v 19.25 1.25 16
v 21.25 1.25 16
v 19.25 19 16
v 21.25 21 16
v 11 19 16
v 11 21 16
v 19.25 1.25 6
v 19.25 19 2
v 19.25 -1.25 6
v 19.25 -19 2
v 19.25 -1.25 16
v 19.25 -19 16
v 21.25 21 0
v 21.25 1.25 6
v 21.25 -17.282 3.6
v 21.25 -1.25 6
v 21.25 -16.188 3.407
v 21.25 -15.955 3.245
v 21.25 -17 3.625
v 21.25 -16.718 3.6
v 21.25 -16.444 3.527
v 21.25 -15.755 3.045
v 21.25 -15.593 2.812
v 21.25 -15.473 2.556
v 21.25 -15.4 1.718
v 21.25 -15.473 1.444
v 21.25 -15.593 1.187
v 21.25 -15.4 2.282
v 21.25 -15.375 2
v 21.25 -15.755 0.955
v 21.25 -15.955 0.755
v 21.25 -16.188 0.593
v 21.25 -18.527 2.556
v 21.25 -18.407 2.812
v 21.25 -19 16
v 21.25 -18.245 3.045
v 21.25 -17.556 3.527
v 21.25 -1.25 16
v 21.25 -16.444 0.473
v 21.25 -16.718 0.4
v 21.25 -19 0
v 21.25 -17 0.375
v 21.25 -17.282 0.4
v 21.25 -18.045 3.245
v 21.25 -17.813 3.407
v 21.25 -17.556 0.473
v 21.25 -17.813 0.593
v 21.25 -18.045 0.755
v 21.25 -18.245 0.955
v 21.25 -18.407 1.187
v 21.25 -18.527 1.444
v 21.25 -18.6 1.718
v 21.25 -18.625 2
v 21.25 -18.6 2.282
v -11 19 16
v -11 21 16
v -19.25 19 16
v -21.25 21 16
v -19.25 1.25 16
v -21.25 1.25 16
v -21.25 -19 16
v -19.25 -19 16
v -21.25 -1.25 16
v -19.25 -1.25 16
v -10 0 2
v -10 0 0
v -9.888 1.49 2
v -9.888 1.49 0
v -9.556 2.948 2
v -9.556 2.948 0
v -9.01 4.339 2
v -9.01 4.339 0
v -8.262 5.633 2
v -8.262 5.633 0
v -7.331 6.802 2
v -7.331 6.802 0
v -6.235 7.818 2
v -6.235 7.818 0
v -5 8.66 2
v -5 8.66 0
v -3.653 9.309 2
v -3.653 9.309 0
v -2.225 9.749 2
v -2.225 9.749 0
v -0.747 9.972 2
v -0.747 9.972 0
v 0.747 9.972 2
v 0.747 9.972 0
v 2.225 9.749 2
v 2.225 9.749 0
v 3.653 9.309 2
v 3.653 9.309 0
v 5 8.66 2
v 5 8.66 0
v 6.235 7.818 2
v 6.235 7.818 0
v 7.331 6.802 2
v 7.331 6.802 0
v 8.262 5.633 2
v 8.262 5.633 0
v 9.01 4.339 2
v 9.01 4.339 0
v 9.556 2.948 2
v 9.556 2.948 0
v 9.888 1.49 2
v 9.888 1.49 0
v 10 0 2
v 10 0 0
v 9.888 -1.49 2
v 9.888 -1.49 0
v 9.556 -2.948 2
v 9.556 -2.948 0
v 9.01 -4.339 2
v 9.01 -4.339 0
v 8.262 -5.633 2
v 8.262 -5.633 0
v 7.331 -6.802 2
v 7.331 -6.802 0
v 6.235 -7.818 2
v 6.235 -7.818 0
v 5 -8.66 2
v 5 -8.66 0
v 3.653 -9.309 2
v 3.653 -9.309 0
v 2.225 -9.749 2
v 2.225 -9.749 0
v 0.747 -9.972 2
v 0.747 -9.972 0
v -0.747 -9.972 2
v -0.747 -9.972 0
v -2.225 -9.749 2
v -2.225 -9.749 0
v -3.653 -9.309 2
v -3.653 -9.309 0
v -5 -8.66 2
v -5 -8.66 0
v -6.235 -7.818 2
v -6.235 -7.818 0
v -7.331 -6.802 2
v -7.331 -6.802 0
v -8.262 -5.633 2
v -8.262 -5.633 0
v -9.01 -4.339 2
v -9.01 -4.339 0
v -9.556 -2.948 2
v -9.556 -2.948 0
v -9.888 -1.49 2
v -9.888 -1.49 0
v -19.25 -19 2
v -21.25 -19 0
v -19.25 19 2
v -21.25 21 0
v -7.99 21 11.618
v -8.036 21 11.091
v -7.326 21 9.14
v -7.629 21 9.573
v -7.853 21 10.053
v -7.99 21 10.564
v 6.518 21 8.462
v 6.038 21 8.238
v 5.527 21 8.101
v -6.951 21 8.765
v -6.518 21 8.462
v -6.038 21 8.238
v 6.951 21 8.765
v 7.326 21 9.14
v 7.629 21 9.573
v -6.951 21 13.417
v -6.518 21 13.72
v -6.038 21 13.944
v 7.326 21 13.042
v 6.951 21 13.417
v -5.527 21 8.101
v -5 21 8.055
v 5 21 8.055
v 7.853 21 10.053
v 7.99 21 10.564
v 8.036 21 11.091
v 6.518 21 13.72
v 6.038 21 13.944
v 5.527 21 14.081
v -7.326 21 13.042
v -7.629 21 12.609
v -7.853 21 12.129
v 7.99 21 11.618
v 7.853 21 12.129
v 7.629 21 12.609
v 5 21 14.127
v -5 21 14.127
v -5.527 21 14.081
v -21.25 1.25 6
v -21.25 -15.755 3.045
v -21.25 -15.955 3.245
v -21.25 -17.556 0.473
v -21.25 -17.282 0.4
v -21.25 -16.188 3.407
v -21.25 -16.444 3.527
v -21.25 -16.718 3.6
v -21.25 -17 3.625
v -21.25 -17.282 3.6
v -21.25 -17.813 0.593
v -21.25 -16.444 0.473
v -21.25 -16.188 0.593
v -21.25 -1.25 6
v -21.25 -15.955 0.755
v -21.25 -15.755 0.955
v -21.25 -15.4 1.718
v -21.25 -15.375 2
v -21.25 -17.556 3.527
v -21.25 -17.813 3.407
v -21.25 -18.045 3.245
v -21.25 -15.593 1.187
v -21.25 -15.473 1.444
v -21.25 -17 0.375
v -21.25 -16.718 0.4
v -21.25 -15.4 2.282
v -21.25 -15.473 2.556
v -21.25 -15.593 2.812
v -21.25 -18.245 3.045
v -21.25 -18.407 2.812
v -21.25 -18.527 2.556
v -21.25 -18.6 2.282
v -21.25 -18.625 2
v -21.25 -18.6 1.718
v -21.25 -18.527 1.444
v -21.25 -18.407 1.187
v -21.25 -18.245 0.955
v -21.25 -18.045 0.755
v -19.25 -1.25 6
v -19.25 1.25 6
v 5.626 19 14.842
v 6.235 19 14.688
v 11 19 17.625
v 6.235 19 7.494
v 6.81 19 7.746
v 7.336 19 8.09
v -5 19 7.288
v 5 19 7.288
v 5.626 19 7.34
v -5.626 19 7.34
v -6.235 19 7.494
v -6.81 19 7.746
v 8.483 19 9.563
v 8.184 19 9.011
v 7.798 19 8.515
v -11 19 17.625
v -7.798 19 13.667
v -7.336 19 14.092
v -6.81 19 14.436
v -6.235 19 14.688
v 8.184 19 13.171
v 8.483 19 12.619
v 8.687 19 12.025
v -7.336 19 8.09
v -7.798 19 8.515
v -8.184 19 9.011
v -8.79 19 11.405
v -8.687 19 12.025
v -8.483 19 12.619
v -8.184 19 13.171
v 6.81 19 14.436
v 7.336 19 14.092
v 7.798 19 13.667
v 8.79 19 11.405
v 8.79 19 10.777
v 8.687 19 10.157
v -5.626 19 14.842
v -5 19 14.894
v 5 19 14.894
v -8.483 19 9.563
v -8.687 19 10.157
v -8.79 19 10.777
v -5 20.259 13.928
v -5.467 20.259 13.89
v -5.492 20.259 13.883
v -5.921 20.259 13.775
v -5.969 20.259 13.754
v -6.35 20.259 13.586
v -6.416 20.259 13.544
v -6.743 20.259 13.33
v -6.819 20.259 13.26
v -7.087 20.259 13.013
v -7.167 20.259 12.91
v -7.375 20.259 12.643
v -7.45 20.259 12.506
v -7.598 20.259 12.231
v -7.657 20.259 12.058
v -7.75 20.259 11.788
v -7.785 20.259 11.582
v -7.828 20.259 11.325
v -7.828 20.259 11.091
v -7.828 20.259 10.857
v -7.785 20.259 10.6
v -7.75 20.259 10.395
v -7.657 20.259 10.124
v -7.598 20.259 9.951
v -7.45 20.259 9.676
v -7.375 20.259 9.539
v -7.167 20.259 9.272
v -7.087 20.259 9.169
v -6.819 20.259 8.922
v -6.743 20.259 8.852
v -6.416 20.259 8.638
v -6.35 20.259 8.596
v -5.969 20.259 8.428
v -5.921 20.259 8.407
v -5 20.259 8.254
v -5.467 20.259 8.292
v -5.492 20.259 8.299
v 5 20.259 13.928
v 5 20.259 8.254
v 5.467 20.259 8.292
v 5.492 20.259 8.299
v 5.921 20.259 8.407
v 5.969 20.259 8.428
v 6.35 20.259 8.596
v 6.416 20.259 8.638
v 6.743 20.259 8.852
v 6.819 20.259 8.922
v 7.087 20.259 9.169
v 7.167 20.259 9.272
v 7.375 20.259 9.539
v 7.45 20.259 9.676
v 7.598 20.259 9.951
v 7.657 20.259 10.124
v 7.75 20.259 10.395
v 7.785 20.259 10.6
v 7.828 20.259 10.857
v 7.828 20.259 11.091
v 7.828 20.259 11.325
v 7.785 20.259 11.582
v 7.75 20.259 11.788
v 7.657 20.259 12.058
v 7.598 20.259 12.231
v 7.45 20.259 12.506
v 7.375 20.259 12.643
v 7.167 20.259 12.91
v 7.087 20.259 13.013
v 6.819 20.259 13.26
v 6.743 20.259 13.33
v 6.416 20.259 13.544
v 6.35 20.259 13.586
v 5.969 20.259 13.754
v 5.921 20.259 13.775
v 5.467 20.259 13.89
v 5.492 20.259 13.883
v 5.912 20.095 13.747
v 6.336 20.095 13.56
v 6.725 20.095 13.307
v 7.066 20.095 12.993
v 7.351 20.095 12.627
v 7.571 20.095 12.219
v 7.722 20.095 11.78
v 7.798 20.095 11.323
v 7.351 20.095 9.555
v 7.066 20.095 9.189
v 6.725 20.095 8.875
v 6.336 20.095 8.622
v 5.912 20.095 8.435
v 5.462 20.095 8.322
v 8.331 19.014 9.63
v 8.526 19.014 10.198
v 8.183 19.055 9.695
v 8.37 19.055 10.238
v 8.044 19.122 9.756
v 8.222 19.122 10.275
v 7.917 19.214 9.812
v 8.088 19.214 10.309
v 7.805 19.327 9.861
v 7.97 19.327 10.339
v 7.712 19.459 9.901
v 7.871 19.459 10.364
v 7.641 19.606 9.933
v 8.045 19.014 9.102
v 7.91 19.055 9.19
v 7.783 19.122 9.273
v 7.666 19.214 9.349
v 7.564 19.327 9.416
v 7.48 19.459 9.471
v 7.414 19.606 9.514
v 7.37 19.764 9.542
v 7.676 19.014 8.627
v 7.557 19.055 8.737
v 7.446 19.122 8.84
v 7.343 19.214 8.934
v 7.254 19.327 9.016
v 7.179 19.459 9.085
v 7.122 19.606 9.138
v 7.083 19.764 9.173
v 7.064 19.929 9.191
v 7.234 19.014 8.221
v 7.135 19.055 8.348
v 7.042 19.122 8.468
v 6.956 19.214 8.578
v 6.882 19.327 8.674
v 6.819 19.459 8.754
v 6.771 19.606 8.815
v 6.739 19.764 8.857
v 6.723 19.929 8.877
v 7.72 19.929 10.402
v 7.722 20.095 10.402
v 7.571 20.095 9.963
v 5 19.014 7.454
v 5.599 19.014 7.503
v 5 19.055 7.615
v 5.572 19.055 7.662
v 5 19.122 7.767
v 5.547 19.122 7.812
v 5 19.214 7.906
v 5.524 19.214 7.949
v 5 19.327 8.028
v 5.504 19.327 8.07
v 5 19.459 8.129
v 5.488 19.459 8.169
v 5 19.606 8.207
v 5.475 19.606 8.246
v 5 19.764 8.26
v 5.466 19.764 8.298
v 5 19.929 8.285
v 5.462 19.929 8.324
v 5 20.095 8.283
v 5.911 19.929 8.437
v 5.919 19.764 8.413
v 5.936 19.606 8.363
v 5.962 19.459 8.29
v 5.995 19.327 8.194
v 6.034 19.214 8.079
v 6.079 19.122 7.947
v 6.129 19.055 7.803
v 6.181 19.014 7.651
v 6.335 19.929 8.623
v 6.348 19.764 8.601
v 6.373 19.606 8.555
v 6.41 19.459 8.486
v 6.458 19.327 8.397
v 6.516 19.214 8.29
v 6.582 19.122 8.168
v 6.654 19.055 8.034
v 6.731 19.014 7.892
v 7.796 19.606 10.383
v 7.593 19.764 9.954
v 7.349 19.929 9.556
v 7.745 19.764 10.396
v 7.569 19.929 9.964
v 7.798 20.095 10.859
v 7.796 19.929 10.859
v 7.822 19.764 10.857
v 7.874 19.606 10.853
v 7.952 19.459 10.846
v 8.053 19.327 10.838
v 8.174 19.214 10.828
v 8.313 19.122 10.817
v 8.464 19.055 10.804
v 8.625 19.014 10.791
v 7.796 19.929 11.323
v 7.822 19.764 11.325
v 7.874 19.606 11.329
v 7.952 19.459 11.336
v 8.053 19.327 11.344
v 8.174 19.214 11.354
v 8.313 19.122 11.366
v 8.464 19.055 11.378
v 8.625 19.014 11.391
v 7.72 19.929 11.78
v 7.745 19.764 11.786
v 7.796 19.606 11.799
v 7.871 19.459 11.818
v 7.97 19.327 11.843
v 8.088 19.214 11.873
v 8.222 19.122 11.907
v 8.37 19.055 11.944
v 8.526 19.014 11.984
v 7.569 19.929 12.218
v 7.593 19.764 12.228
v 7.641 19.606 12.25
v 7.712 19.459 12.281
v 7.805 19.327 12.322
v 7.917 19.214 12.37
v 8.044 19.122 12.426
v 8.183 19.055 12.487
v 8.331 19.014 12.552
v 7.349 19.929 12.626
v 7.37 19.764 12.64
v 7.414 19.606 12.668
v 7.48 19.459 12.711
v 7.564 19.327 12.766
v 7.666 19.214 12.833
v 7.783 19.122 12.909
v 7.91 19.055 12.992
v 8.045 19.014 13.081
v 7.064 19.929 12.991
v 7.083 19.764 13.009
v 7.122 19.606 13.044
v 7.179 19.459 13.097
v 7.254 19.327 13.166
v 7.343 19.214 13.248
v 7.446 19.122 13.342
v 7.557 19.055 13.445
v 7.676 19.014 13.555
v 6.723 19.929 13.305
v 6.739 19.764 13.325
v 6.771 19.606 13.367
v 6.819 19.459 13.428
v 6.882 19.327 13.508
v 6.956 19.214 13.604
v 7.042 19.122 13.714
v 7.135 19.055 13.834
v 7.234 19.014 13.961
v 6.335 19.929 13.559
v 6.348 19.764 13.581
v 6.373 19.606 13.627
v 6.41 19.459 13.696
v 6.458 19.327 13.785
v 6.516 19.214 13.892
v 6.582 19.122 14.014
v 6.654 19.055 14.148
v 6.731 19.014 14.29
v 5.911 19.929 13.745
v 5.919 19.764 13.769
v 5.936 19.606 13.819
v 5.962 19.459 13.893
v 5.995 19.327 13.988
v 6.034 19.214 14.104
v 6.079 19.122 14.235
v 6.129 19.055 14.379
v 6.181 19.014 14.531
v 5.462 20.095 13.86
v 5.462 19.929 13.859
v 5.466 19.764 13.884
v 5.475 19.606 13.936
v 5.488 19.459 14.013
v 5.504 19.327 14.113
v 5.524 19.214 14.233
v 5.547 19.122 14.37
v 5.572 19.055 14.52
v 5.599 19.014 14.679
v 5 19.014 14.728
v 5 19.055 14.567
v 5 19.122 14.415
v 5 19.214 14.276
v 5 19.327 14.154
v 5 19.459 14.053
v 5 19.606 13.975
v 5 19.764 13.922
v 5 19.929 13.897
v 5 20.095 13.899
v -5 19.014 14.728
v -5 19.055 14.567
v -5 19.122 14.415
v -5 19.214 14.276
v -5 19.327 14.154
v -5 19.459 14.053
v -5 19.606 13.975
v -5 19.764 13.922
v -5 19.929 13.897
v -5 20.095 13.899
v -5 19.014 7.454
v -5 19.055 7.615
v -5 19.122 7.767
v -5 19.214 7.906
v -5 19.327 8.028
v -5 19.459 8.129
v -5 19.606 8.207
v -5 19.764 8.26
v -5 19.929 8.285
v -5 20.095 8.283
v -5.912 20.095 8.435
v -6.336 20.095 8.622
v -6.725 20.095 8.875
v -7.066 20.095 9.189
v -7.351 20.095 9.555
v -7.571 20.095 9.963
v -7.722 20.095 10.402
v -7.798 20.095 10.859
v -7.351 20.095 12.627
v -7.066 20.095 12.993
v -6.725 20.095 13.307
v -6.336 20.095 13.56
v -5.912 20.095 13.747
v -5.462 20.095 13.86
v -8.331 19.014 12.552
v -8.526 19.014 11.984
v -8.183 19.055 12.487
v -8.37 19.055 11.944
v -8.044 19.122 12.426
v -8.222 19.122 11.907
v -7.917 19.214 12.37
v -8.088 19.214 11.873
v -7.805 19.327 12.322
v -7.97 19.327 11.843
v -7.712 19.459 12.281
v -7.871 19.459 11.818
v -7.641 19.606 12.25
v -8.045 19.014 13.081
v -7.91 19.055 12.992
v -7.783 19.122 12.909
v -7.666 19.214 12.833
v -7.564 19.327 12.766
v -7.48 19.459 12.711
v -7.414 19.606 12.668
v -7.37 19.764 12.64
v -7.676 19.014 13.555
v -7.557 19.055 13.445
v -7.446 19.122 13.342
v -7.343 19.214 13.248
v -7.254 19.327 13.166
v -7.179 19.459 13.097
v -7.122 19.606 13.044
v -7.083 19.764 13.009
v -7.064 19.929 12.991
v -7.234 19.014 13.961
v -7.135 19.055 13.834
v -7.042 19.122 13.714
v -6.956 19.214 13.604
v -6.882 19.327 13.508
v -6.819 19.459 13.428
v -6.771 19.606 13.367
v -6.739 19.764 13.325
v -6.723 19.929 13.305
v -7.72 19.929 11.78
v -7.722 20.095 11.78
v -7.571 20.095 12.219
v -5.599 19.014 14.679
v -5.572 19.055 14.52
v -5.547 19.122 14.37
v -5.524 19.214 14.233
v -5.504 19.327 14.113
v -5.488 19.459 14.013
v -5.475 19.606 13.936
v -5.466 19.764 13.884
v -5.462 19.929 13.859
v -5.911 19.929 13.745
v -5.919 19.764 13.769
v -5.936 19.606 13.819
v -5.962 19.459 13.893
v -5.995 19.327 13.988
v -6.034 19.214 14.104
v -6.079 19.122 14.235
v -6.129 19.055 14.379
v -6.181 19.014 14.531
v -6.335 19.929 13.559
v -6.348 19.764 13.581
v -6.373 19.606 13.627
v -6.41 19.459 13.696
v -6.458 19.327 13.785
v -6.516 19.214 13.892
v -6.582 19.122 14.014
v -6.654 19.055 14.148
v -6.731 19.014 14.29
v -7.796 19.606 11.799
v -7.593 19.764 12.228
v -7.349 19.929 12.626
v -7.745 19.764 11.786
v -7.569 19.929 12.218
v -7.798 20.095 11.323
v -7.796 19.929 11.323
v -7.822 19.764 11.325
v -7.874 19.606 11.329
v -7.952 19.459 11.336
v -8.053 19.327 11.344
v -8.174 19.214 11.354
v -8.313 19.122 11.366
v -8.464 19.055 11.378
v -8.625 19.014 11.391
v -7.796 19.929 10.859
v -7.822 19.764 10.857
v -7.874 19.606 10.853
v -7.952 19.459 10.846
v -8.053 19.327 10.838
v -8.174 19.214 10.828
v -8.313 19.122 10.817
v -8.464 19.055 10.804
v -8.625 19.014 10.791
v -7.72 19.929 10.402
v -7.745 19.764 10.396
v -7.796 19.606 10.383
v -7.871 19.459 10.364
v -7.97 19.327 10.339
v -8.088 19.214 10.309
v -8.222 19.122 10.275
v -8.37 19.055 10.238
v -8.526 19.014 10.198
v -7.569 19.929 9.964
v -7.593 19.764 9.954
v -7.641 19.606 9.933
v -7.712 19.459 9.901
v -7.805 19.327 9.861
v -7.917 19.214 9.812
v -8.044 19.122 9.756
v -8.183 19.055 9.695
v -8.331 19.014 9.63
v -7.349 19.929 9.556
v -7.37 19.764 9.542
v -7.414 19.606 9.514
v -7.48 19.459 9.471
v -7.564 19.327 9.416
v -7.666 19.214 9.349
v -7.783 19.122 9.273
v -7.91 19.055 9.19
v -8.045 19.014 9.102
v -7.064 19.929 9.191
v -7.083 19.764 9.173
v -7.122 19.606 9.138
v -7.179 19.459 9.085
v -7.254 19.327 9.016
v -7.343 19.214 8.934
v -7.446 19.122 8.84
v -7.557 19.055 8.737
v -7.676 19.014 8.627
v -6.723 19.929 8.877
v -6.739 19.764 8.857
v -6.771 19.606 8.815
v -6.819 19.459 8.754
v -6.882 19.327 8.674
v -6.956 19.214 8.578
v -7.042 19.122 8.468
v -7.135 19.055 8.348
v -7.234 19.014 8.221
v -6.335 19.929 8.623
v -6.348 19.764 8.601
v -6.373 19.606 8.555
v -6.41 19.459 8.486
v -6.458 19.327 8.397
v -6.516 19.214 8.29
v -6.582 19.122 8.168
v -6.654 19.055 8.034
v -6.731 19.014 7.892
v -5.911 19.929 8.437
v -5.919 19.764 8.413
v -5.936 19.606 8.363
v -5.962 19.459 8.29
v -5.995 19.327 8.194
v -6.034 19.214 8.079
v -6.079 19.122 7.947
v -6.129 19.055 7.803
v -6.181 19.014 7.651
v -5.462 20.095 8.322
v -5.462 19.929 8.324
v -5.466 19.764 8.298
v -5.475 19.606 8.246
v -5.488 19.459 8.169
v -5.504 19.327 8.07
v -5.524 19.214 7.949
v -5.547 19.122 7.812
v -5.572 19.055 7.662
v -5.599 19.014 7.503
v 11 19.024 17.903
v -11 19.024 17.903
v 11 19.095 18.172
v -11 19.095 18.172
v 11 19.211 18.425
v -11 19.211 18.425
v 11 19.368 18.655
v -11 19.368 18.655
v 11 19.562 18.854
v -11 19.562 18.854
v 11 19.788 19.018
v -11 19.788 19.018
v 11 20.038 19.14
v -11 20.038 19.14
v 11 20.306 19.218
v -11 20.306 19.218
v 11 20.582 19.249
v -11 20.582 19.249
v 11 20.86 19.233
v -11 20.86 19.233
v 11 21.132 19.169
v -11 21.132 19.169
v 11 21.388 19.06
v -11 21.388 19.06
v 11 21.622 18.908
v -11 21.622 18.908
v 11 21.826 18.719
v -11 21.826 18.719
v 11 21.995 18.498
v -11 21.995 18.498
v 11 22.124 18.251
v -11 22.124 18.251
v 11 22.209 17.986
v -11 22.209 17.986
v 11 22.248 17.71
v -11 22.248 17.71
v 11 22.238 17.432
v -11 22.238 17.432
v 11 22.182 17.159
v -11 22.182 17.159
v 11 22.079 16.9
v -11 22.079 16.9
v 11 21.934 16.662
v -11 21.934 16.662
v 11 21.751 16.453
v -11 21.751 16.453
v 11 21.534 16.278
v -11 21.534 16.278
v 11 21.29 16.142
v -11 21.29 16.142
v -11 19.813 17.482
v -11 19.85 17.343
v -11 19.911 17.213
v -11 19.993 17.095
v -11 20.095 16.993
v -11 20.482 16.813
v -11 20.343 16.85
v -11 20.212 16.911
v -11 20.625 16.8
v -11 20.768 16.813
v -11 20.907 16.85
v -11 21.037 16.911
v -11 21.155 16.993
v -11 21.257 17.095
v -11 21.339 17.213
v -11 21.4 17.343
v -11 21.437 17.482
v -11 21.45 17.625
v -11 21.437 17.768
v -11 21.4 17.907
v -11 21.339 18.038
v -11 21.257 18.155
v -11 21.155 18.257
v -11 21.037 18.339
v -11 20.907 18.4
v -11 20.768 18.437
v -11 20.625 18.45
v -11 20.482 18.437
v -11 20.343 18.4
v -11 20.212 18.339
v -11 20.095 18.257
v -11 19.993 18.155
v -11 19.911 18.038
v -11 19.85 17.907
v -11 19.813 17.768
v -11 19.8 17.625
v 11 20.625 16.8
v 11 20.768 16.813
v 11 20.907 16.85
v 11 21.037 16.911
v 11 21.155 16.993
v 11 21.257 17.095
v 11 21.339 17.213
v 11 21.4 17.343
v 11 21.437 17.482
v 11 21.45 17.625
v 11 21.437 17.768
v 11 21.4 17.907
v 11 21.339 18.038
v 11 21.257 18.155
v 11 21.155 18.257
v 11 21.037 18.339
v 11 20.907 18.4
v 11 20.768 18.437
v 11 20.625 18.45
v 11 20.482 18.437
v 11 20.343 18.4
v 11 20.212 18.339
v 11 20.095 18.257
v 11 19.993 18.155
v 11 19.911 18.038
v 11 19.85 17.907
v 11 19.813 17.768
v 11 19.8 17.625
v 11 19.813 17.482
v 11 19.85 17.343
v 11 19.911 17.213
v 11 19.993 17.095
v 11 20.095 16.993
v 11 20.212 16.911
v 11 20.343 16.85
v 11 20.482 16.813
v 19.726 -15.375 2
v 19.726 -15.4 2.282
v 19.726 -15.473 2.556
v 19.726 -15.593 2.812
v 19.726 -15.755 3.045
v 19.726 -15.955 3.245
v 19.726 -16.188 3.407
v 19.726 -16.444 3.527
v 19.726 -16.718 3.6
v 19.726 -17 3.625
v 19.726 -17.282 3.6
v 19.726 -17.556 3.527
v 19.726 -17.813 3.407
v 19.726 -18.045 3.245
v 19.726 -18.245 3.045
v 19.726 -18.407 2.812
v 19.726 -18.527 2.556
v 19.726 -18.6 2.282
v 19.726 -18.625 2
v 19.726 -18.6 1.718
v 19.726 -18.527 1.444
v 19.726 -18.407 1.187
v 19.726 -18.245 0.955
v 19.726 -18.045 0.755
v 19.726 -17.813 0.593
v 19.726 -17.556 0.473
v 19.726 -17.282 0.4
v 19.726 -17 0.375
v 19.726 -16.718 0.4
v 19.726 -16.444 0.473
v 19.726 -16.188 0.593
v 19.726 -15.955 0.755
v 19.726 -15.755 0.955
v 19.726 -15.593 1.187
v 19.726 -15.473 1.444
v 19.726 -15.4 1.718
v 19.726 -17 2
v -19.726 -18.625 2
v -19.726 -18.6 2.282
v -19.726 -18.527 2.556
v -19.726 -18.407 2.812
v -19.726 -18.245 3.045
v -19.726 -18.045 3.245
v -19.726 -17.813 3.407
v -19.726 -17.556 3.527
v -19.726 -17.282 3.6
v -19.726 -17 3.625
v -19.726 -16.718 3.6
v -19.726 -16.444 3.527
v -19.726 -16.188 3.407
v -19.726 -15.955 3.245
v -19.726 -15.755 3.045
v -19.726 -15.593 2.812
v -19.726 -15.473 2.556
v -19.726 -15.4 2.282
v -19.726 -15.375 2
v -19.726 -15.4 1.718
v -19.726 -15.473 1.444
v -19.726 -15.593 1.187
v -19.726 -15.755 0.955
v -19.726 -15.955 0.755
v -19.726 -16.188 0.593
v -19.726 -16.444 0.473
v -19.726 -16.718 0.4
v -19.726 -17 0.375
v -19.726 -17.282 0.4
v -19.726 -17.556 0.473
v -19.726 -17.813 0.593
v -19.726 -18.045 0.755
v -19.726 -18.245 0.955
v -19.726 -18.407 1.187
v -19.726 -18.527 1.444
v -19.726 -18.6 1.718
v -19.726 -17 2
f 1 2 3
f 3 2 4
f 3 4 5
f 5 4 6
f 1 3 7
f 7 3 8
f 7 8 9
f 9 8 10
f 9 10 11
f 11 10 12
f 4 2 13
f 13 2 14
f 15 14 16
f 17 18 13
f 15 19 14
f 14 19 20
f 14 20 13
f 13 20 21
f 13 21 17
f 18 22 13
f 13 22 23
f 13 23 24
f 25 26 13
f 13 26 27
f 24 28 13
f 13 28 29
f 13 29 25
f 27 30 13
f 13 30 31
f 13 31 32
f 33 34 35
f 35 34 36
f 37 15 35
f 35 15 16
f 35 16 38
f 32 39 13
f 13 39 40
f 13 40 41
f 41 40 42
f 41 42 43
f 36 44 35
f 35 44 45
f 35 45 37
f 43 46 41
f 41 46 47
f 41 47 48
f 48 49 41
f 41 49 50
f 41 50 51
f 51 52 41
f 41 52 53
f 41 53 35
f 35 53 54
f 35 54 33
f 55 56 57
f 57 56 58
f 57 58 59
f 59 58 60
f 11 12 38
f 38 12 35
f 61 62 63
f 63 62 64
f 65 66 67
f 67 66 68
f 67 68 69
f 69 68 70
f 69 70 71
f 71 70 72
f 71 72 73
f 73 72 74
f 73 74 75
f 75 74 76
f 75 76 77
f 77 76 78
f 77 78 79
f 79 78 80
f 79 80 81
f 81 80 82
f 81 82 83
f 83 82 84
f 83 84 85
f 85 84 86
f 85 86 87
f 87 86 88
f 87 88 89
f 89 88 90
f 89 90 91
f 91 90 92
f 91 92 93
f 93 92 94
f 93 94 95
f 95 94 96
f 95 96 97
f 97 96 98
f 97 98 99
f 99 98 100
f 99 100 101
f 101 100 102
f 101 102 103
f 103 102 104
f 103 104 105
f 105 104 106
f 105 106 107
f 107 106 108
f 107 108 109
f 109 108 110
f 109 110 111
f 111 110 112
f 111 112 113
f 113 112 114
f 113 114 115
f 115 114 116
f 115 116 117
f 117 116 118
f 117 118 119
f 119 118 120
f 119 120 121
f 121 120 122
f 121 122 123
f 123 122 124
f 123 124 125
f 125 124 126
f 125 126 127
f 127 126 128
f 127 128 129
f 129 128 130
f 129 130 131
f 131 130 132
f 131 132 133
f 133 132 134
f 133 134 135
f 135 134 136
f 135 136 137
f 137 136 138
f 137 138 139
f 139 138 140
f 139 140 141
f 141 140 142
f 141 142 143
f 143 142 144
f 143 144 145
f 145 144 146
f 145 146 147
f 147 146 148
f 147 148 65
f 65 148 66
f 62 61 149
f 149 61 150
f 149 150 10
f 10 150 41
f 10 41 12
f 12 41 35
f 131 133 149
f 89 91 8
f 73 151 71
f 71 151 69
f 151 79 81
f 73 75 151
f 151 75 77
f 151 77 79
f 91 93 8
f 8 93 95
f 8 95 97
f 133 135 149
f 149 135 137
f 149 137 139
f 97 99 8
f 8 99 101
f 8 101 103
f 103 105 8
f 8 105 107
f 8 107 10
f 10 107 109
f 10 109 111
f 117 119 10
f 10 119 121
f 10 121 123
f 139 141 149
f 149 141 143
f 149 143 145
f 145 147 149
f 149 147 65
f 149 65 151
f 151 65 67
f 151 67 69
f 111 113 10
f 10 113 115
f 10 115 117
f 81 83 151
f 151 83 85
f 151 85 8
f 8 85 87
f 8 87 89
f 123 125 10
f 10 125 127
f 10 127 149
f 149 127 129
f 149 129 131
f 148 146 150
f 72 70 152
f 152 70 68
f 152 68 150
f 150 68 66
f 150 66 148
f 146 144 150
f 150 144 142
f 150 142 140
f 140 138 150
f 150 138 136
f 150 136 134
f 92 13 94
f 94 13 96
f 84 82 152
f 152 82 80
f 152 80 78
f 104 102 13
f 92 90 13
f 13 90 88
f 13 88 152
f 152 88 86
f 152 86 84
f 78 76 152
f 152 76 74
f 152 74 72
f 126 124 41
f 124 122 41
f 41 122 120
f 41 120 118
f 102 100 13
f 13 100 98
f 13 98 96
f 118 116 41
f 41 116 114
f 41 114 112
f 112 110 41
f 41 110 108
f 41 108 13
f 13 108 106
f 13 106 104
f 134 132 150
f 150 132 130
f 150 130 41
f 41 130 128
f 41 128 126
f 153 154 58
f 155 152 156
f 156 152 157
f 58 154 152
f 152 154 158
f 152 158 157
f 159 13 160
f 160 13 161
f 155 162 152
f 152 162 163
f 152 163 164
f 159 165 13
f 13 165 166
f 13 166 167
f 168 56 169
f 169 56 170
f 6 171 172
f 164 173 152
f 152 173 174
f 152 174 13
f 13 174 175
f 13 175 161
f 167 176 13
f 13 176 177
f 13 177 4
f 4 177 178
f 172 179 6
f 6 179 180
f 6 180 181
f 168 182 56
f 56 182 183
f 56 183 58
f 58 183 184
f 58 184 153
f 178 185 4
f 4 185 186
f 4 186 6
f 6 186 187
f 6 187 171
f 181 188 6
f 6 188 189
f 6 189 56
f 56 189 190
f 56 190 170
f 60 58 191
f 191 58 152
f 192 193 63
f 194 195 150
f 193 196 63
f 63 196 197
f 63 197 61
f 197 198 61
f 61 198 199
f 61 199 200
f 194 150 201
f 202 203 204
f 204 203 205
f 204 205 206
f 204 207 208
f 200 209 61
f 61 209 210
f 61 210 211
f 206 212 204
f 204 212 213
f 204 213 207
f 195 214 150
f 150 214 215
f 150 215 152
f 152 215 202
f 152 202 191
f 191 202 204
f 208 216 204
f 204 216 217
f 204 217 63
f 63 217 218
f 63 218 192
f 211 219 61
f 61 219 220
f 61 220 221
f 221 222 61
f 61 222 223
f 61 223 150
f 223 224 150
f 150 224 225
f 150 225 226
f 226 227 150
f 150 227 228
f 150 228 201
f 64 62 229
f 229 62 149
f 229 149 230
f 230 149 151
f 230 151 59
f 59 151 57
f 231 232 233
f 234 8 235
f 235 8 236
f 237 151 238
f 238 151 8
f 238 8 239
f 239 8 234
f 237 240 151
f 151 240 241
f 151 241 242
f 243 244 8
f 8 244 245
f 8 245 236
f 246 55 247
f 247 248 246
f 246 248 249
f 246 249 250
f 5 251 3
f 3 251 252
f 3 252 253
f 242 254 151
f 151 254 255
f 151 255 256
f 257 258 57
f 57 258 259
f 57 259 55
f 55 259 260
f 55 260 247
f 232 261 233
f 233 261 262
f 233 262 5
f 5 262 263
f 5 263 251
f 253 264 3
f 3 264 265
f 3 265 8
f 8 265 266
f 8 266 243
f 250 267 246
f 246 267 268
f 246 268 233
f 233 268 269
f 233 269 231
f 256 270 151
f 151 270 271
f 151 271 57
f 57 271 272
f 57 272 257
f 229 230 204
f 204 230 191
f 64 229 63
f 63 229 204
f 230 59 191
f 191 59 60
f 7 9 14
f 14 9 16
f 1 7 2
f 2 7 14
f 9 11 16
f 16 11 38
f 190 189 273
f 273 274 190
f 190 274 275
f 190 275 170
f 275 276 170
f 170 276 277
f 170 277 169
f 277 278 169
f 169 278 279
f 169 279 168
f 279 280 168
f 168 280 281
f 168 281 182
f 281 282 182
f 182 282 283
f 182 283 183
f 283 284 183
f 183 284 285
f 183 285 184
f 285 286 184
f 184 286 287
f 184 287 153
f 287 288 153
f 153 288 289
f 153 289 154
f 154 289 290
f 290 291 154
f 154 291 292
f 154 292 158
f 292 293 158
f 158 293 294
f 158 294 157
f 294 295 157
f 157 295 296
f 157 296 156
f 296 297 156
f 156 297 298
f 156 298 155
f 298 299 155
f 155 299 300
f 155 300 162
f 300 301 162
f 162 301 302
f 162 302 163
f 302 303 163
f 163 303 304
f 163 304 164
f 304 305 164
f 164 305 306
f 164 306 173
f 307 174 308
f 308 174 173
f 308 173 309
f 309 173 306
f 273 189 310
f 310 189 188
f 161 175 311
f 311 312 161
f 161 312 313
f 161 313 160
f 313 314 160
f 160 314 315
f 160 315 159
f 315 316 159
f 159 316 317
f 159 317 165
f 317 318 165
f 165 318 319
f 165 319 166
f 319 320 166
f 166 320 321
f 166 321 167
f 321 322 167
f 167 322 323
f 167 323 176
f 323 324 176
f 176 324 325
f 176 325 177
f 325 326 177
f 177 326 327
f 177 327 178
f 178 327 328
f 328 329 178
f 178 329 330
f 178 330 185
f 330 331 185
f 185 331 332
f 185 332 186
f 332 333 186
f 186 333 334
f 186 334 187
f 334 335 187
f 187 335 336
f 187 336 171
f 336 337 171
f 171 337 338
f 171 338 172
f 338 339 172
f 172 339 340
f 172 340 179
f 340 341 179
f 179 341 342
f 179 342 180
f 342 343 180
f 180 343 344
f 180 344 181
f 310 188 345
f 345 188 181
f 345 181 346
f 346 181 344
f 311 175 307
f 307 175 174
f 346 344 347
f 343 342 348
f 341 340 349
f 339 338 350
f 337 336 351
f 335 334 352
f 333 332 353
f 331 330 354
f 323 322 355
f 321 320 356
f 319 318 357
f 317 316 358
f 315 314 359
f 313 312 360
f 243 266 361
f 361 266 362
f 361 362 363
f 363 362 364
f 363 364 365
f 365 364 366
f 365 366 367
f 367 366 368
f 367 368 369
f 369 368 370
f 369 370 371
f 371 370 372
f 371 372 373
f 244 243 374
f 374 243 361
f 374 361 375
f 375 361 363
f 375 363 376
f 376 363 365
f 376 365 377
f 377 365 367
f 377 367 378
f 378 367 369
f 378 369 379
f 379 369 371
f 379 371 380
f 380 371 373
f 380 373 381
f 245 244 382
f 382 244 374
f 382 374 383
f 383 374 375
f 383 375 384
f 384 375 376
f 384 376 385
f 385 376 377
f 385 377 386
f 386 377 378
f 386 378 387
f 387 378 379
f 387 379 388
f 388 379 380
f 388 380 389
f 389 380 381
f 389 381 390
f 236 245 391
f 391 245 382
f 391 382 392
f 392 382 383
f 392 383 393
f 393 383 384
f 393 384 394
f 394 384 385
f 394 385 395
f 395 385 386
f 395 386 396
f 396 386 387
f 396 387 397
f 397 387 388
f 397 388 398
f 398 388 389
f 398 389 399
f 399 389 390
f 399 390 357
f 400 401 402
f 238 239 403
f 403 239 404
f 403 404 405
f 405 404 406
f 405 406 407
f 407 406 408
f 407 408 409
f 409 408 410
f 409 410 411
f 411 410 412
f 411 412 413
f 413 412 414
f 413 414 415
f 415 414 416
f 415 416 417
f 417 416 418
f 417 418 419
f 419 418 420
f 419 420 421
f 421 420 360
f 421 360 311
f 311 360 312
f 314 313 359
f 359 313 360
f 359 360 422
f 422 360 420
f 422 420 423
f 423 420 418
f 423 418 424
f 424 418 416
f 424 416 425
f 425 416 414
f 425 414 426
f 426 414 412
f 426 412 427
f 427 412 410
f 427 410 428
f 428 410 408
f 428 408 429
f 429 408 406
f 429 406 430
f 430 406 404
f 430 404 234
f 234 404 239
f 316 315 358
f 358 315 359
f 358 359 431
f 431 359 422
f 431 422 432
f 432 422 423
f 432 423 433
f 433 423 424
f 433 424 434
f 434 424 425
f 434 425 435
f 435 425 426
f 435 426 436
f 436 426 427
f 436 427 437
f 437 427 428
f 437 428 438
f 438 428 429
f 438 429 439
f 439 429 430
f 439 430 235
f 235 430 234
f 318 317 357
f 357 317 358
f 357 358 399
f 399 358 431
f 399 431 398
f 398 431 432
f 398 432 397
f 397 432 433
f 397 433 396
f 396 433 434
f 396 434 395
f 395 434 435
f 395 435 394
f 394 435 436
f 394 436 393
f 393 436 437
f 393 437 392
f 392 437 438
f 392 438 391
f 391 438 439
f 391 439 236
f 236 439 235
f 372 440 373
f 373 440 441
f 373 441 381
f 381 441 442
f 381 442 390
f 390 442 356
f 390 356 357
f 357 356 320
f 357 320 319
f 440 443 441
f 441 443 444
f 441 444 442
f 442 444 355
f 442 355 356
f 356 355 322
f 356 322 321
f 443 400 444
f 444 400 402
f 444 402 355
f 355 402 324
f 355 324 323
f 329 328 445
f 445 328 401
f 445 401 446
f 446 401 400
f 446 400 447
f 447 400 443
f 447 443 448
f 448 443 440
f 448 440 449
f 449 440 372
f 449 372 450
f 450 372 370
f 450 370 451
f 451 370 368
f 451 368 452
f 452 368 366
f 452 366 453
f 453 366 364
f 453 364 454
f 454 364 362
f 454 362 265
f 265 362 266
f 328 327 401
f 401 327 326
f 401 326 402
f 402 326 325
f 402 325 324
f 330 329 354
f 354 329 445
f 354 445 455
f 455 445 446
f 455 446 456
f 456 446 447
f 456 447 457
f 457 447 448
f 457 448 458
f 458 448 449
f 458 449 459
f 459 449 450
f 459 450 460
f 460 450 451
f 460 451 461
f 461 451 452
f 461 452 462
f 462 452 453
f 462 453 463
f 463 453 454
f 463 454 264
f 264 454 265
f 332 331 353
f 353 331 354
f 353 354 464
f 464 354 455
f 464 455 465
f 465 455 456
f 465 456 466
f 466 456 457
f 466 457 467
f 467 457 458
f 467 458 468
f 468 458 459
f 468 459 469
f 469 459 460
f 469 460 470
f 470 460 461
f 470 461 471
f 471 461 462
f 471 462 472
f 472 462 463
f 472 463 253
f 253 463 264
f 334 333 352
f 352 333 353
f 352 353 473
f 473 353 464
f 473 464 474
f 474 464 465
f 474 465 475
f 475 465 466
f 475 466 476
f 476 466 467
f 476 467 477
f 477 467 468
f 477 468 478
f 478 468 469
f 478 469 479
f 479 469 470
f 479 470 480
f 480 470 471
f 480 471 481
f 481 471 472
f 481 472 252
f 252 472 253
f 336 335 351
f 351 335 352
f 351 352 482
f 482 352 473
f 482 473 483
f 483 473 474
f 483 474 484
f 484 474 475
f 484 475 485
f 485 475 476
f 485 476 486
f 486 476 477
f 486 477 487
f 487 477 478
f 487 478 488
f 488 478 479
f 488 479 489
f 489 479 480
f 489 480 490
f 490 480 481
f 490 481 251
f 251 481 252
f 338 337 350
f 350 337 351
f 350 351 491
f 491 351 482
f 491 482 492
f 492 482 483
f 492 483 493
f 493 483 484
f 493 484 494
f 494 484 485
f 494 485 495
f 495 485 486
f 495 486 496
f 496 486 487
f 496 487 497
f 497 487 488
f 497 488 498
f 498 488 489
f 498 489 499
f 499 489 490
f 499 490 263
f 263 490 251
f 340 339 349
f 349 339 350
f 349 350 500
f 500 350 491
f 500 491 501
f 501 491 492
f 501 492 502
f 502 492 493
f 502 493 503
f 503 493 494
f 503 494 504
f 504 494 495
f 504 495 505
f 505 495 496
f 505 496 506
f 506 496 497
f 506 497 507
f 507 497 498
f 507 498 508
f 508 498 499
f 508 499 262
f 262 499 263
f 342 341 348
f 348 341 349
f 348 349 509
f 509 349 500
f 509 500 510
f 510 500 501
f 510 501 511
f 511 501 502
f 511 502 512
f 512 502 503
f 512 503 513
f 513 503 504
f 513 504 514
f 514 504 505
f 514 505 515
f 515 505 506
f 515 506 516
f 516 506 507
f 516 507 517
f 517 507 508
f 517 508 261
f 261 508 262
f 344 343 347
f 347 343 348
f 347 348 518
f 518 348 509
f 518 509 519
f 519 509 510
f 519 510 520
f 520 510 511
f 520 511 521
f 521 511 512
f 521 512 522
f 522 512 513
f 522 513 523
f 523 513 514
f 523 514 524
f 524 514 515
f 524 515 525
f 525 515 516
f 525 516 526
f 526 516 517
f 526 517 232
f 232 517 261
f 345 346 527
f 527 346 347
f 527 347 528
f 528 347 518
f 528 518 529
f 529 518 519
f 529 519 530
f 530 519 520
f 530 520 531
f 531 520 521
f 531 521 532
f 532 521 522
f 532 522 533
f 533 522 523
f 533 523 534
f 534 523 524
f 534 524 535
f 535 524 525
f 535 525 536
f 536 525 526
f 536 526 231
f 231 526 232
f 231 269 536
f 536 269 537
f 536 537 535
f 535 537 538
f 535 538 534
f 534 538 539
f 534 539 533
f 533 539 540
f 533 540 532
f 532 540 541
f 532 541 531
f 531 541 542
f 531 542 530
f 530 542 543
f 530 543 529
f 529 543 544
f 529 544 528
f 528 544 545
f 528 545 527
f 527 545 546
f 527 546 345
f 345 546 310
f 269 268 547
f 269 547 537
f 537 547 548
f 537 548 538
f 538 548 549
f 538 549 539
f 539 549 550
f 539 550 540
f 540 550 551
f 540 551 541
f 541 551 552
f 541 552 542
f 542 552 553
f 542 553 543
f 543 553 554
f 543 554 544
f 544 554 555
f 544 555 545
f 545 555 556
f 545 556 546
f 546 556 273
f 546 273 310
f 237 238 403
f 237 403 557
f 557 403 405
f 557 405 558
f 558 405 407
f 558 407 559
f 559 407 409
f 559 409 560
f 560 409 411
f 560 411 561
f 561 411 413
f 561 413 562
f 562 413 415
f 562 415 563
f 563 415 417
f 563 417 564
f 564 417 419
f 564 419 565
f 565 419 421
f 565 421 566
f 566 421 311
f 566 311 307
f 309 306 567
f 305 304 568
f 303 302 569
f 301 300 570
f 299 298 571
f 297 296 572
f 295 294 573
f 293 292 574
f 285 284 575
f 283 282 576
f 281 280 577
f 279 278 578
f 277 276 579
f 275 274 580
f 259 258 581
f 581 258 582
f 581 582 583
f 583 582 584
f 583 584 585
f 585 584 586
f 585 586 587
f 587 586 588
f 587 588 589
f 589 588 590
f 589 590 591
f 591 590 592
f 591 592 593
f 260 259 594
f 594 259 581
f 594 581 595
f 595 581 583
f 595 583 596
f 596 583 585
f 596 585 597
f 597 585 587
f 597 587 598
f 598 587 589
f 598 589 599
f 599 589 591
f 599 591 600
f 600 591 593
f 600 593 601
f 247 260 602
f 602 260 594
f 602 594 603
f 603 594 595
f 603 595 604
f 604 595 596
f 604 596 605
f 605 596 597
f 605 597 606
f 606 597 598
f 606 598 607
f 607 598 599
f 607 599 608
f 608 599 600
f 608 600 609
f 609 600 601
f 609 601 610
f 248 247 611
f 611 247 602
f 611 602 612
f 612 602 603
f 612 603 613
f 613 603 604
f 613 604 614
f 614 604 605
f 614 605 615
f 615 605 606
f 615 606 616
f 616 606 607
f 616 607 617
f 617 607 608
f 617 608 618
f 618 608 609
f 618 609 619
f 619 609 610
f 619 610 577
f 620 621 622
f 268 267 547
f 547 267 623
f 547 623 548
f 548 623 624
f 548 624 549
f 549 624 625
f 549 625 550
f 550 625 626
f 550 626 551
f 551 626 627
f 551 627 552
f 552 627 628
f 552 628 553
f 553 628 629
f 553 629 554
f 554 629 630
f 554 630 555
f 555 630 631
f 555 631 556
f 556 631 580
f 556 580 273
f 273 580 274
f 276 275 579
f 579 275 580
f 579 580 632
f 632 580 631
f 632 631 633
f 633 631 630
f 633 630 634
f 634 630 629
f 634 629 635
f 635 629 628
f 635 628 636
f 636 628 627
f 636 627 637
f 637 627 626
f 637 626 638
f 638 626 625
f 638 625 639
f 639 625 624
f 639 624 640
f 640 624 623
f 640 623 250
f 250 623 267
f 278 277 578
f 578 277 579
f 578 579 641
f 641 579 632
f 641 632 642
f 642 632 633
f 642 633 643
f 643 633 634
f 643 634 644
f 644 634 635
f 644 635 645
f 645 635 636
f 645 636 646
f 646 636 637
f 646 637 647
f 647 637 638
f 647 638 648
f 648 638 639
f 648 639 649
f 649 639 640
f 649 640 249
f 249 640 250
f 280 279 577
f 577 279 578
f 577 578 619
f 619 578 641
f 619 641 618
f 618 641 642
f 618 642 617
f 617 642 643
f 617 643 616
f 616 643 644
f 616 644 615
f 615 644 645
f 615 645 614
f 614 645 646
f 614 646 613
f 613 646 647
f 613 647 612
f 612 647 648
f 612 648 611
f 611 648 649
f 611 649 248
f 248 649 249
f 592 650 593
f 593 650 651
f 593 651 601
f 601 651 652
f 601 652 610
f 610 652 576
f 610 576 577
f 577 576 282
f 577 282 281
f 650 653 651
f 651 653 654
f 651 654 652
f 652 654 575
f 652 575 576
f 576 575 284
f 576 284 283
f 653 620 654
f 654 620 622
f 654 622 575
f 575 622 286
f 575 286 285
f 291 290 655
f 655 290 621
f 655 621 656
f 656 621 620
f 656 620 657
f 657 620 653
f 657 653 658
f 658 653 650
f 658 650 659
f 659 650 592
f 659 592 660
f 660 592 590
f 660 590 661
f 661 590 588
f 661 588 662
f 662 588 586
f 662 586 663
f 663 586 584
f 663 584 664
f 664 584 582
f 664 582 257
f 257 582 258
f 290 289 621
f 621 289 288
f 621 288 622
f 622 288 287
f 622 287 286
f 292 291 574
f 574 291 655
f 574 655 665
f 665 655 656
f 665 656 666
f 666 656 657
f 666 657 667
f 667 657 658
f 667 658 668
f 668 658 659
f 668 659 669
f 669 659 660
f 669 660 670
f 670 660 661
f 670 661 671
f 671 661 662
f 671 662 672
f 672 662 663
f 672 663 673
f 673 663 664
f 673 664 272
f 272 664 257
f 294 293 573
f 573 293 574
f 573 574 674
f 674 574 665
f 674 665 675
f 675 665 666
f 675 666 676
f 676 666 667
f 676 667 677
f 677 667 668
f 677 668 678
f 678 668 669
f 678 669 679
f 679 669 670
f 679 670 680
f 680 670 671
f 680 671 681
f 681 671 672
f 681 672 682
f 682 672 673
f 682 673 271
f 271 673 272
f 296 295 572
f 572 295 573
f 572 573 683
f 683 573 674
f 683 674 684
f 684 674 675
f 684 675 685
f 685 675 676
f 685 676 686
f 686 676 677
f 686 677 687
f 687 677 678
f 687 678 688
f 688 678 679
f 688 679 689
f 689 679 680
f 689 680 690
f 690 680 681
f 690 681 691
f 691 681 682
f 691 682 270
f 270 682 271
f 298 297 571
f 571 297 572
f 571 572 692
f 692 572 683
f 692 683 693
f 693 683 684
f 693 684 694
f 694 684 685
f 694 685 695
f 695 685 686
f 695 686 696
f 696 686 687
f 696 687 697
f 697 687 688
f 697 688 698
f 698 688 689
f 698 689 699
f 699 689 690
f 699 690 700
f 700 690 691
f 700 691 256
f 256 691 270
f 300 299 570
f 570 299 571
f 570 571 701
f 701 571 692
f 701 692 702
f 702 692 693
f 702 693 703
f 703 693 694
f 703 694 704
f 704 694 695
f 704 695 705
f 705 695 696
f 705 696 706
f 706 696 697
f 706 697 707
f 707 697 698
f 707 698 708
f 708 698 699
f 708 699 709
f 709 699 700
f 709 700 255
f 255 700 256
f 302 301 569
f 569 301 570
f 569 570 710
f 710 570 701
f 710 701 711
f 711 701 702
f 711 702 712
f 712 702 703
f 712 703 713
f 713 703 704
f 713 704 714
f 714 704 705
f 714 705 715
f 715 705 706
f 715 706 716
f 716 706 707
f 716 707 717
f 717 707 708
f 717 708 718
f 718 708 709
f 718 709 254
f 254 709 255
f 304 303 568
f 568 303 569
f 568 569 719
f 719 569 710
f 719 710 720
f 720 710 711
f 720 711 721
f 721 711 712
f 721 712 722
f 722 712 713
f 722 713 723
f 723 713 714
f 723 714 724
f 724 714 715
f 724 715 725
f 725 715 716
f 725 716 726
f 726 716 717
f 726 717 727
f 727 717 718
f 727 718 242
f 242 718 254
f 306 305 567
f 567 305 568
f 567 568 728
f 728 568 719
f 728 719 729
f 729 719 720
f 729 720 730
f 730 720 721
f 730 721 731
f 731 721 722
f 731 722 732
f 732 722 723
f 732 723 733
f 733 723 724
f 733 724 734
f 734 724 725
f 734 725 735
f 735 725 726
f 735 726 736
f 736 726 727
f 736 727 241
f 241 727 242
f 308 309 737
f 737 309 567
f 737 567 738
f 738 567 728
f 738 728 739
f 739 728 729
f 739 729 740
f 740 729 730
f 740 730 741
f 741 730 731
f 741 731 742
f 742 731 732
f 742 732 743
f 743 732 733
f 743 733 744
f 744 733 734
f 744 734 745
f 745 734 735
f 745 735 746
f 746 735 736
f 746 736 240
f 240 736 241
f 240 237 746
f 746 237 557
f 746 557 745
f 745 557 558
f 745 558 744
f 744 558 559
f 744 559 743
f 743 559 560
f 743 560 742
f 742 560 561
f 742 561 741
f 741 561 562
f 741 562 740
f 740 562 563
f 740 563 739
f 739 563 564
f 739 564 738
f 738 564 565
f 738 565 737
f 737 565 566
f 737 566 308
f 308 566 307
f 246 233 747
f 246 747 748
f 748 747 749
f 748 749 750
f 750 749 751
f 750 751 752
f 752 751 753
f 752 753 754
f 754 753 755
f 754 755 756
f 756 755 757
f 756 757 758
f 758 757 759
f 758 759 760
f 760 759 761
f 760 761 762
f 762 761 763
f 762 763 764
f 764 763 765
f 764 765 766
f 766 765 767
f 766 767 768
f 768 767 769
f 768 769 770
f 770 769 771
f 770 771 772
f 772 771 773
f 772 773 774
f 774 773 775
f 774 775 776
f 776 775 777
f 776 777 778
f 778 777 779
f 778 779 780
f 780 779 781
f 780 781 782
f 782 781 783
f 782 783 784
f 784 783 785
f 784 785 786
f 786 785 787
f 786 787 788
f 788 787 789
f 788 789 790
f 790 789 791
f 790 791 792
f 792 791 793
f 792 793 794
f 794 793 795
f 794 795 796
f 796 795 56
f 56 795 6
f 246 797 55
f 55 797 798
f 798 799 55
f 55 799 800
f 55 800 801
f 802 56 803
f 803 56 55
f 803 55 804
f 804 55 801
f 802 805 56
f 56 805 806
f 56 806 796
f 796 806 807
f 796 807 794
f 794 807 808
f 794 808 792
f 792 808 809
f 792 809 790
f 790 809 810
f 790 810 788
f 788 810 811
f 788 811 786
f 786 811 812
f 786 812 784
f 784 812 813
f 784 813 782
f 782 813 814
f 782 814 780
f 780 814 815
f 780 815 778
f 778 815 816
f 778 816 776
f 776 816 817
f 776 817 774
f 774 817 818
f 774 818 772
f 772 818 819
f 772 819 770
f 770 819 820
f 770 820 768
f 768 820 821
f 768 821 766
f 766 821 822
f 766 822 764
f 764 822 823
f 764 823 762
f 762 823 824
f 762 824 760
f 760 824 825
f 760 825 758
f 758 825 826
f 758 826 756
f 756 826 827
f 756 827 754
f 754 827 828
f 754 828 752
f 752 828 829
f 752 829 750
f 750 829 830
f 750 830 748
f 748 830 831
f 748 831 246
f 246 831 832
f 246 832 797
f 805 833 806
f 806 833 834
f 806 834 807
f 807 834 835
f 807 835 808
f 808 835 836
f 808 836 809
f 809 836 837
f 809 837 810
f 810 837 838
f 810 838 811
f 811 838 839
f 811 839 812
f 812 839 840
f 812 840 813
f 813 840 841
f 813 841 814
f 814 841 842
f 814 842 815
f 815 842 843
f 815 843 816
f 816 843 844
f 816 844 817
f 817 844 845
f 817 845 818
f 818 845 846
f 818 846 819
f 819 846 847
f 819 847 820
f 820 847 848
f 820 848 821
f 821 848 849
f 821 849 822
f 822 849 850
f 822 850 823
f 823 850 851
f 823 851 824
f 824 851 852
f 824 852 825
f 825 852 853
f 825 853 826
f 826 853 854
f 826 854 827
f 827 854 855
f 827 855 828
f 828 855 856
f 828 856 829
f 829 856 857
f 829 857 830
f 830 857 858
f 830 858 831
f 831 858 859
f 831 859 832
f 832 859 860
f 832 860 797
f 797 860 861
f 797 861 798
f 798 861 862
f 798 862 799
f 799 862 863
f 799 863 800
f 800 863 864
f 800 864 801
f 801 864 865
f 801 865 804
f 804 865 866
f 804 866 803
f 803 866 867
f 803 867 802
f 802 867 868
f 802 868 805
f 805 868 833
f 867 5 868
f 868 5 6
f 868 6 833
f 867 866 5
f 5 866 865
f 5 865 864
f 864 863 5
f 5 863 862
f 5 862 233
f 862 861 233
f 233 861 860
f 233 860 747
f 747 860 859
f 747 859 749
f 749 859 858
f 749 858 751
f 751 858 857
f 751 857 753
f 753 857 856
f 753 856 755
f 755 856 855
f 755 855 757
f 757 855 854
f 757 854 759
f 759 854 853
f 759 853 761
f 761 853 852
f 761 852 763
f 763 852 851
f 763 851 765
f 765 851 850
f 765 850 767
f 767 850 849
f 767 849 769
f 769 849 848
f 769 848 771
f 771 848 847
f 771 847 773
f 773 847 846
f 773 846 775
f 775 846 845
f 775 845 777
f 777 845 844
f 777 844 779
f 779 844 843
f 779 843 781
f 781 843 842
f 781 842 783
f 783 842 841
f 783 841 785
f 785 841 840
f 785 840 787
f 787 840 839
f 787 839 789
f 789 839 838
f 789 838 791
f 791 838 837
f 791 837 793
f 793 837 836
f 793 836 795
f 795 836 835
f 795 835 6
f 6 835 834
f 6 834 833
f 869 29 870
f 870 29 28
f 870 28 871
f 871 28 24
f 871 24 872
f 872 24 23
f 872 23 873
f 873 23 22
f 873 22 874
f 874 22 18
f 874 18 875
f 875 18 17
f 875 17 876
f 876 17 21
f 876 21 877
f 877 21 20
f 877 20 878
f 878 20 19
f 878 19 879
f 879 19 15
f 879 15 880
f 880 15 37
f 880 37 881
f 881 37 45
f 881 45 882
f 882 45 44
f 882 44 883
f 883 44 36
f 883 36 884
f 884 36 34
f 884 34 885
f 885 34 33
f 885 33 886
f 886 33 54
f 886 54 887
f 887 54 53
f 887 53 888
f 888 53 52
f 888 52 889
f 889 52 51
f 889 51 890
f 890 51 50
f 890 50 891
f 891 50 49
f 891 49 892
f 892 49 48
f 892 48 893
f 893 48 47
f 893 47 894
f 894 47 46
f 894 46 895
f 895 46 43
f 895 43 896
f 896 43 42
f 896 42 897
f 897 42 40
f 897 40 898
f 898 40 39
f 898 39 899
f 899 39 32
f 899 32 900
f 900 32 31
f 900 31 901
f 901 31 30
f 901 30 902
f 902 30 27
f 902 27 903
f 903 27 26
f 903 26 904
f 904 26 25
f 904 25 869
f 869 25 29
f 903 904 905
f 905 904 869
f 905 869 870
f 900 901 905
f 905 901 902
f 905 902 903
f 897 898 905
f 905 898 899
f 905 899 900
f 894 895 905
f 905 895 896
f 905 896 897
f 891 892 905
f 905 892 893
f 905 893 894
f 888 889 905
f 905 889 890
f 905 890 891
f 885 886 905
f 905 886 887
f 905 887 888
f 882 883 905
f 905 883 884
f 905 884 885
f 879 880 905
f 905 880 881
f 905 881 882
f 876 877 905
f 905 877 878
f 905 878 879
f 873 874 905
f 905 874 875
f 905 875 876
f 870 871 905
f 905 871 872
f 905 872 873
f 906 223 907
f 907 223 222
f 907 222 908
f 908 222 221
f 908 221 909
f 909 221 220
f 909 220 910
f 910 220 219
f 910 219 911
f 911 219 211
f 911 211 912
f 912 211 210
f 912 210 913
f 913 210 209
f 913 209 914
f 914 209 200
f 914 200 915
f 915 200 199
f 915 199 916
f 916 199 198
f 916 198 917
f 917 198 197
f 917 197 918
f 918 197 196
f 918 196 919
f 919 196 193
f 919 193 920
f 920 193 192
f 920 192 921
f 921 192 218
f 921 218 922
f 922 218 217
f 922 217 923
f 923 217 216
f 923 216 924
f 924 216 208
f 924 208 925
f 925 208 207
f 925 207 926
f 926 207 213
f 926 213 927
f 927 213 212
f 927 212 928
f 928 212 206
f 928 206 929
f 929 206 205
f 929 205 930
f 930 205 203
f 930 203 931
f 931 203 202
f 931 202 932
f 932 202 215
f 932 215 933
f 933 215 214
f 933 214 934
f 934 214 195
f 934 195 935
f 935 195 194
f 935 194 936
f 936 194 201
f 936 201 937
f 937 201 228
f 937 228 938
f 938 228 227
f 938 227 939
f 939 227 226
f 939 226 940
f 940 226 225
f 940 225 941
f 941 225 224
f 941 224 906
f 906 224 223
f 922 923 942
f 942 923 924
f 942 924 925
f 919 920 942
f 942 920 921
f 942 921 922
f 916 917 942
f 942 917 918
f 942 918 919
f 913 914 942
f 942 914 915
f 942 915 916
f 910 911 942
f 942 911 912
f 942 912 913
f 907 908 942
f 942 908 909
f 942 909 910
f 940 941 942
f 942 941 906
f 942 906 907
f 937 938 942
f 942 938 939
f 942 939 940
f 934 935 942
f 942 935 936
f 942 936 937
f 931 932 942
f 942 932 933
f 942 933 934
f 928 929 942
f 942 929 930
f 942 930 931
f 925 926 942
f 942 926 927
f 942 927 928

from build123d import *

# Parameters (mm, degrees)
SKETCH1_W                = 38.5
SKETCH1_H                = 38
SKETCH1_R                = 10
BOSS_EXTRUDE1_DEPTH      = 2
BOSS_EXTRUDE2_DEPTH      = 14
BOSS_EXTRUDE2_DEPTH_BACK = 2
CUT_EXTRUDE1_REACH       = 50.345
SKETCH3_W                = 10
SKETCH3_H                = 2.5
CUT_EXTRUDE2_DEPTH       = 47.384938288
CUT_EXTRUDE2_DRAFT       = 15
FILLET1_R                = 1
BOSS_EXTRUDE3_DEPTH      = 11
BOSS_EXTRUDE3_DEPTH_BACK = 11
SKETCH7_R                = 0.825
SKETCH8_R                = 1.625
CUT_EXTRUDE3_DEPTH       = 1.524


with BuildPart() as part:
    # Sketch1 → Boss-Extrude1 (new body)
    with BuildSketch(Plane.XY):
        Rectangle(SKETCH1_W, SKETCH1_H)
        Circle(SKETCH1_R, mode=Mode.SUBTRACT)
    extrude(amount=BOSS_EXTRUDE1_DEPTH)

    # Sketch2 → Boss-Extrude2 (add, two sides: drawn at the far end of the back side and taken through both)
    with BuildSketch(Plane.XY.offset(2).offset(-BOSS_EXTRUDE2_DEPTH_BACK)):
        Polygon((-21.25, -19), (-19.25, -19), (-19.25, 19), (19.25, 19), (19.25, -19), (21.25, -19), (21.25, 21), (-21.25, 21), align=None)
    extrude(amount=BOSS_EXTRUDE2_DEPTH + BOSS_EXTRUDE2_DEPTH_BACK)

    # Sketch3 → Cut-Extrude1 (cut, up to next)
    with BuildSketch(Plane(origin=(-19.25, 0, 0), x_dir=(0, 0, -1), z_dir=(1, 0, 0)), mode=Mode.PRIVATE) as cut_extrude1_sk1:
        with Locations((-11, 0)):
            Rectangle(SKETCH3_W, SKETCH3_H)
    cut_extrude1_tool1 = extrude(cut_extrude1_sk1.sketch, amount=-CUT_EXTRUDE1_REACH, mode=Mode.PRIVATE) & part.part
    cut_extrude1 = cut_extrude1_tool1.solids().sort_by_distance((-19.25, 0, 11))[0]
    add(cut_extrude1, mode=Mode.SUBTRACT)

    # Mirror1: Cut-Extrude1 across plane
    add(cut_extrude1.mirror(Plane(origin=(0, 0, 0), x_dir=(0, 0, 1), z_dir=(1, 0, 0))), mode=Mode.SUBTRACT)


with BuildPart() as cut_extrude2_tool:
    # Sketch5 → Cut-Extrude2 (with draft: the straight prism first)
    with BuildSketch(Plane.XZ.offset(-19)):
        with BuildLine():
            ThreePointArc((-5, 13.591034656), (-7.5, 11.091034656), (-5, 8.591034656))
            Line((-5, 8.591034656), (5, 8.591034656))
            ThreePointArc((5, 8.591034656), (7.5, 11.091034656), (5, 13.591034656))
            Line((5, 13.591034656), (-5, 13.591034656))
        make_face()
    extrude(amount=-CUT_EXTRUDE2_DEPTH)
    # Cut-Extrude2: the draft: its side faces are tilted about the plane it starts from
    cut_extrude2_sides = [cut_extrude2_tool.faces().sort_by_distance(p)[0] for p in [
        (0, 42.692469144, 13.591034656),
        (-7.5, 42.692469144, 11.091034656),
        (0, 42.692469144, 8.591034656),
        (7.5, 42.692469144, 11.091034656),
    ]]
    draft(cut_extrude2_sides, Plane.XZ.offset(-19), CUT_EXTRUDE2_DRAFT)


with BuildPart() as part_1:
    add(part.part)

    # Cut-Extrude2: cut by cut_extrude2_tool
    add(cut_extrude2_tool.part, mode=Mode.SUBTRACT)

    # Fillet1
    fillet1_edges = [part_1.edges().sort_by_distance(p)[0] for p in [
        (-7.5, 19, 11.091034656),
        (0, 19, 8.591034656),
        (7.5, 19, 11.091034656),
        (0, 19, 13.591034656),
    ]]
    fillet(fillet1_edges, radius=FILLET1_R)

    # Sketch7 → Boss-Extrude3 (add, two sides: drawn at the far end of the back side and taken through both)
    with BuildSketch(Plane(origin=(0, 0, 0), x_dir=(0, 0, -1), z_dir=(1, 0, 0)).offset(-BOSS_EXTRUDE3_DEPTH_BACK)):
        with BuildLine():
            Line((-17.625, 19), (-16, 19))
            Line((-16, 19), (-16, 21))
            ThreePointArc((-16, 21), (-16.073732036, 21.14399831), (-16.142494793, 21.290434678))
            ThreePointArc((-16.142494793, 21.290434678), (-18.989176739, 21.507976118), (-17.625, 19))
        make_face()
        with Locations((-17.625, 20.625)):
            Circle(SKETCH7_R, mode=Mode.SUBTRACT)
    extrude(amount=BOSS_EXTRUDE3_DEPTH + BOSS_EXTRUDE3_DEPTH_BACK)

    # Sketch8 → Cut-Extrude3 (cut)
    with BuildSketch(Plane(origin=(21.25, 0, 0), x_dir=(0, 0, -1), z_dir=(1, 0, 0))):
        with Locations(Location((-2, -17, 0), (0, 0, 90))):
            Circle(SKETCH8_R)
    cut_extrude3 = extrude(amount=-CUT_EXTRUDE3_DEPTH, mode=Mode.SUBTRACT)

    # Mirror2: Cut-Extrude3 across plane
    add(cut_extrude3.mirror(Plane(origin=(0, 0, 0), x_dir=(0, 0, 1), z_dir=(1, 0, 0))), mode=Mode.SUBTRACT)


solid = part_1.part
